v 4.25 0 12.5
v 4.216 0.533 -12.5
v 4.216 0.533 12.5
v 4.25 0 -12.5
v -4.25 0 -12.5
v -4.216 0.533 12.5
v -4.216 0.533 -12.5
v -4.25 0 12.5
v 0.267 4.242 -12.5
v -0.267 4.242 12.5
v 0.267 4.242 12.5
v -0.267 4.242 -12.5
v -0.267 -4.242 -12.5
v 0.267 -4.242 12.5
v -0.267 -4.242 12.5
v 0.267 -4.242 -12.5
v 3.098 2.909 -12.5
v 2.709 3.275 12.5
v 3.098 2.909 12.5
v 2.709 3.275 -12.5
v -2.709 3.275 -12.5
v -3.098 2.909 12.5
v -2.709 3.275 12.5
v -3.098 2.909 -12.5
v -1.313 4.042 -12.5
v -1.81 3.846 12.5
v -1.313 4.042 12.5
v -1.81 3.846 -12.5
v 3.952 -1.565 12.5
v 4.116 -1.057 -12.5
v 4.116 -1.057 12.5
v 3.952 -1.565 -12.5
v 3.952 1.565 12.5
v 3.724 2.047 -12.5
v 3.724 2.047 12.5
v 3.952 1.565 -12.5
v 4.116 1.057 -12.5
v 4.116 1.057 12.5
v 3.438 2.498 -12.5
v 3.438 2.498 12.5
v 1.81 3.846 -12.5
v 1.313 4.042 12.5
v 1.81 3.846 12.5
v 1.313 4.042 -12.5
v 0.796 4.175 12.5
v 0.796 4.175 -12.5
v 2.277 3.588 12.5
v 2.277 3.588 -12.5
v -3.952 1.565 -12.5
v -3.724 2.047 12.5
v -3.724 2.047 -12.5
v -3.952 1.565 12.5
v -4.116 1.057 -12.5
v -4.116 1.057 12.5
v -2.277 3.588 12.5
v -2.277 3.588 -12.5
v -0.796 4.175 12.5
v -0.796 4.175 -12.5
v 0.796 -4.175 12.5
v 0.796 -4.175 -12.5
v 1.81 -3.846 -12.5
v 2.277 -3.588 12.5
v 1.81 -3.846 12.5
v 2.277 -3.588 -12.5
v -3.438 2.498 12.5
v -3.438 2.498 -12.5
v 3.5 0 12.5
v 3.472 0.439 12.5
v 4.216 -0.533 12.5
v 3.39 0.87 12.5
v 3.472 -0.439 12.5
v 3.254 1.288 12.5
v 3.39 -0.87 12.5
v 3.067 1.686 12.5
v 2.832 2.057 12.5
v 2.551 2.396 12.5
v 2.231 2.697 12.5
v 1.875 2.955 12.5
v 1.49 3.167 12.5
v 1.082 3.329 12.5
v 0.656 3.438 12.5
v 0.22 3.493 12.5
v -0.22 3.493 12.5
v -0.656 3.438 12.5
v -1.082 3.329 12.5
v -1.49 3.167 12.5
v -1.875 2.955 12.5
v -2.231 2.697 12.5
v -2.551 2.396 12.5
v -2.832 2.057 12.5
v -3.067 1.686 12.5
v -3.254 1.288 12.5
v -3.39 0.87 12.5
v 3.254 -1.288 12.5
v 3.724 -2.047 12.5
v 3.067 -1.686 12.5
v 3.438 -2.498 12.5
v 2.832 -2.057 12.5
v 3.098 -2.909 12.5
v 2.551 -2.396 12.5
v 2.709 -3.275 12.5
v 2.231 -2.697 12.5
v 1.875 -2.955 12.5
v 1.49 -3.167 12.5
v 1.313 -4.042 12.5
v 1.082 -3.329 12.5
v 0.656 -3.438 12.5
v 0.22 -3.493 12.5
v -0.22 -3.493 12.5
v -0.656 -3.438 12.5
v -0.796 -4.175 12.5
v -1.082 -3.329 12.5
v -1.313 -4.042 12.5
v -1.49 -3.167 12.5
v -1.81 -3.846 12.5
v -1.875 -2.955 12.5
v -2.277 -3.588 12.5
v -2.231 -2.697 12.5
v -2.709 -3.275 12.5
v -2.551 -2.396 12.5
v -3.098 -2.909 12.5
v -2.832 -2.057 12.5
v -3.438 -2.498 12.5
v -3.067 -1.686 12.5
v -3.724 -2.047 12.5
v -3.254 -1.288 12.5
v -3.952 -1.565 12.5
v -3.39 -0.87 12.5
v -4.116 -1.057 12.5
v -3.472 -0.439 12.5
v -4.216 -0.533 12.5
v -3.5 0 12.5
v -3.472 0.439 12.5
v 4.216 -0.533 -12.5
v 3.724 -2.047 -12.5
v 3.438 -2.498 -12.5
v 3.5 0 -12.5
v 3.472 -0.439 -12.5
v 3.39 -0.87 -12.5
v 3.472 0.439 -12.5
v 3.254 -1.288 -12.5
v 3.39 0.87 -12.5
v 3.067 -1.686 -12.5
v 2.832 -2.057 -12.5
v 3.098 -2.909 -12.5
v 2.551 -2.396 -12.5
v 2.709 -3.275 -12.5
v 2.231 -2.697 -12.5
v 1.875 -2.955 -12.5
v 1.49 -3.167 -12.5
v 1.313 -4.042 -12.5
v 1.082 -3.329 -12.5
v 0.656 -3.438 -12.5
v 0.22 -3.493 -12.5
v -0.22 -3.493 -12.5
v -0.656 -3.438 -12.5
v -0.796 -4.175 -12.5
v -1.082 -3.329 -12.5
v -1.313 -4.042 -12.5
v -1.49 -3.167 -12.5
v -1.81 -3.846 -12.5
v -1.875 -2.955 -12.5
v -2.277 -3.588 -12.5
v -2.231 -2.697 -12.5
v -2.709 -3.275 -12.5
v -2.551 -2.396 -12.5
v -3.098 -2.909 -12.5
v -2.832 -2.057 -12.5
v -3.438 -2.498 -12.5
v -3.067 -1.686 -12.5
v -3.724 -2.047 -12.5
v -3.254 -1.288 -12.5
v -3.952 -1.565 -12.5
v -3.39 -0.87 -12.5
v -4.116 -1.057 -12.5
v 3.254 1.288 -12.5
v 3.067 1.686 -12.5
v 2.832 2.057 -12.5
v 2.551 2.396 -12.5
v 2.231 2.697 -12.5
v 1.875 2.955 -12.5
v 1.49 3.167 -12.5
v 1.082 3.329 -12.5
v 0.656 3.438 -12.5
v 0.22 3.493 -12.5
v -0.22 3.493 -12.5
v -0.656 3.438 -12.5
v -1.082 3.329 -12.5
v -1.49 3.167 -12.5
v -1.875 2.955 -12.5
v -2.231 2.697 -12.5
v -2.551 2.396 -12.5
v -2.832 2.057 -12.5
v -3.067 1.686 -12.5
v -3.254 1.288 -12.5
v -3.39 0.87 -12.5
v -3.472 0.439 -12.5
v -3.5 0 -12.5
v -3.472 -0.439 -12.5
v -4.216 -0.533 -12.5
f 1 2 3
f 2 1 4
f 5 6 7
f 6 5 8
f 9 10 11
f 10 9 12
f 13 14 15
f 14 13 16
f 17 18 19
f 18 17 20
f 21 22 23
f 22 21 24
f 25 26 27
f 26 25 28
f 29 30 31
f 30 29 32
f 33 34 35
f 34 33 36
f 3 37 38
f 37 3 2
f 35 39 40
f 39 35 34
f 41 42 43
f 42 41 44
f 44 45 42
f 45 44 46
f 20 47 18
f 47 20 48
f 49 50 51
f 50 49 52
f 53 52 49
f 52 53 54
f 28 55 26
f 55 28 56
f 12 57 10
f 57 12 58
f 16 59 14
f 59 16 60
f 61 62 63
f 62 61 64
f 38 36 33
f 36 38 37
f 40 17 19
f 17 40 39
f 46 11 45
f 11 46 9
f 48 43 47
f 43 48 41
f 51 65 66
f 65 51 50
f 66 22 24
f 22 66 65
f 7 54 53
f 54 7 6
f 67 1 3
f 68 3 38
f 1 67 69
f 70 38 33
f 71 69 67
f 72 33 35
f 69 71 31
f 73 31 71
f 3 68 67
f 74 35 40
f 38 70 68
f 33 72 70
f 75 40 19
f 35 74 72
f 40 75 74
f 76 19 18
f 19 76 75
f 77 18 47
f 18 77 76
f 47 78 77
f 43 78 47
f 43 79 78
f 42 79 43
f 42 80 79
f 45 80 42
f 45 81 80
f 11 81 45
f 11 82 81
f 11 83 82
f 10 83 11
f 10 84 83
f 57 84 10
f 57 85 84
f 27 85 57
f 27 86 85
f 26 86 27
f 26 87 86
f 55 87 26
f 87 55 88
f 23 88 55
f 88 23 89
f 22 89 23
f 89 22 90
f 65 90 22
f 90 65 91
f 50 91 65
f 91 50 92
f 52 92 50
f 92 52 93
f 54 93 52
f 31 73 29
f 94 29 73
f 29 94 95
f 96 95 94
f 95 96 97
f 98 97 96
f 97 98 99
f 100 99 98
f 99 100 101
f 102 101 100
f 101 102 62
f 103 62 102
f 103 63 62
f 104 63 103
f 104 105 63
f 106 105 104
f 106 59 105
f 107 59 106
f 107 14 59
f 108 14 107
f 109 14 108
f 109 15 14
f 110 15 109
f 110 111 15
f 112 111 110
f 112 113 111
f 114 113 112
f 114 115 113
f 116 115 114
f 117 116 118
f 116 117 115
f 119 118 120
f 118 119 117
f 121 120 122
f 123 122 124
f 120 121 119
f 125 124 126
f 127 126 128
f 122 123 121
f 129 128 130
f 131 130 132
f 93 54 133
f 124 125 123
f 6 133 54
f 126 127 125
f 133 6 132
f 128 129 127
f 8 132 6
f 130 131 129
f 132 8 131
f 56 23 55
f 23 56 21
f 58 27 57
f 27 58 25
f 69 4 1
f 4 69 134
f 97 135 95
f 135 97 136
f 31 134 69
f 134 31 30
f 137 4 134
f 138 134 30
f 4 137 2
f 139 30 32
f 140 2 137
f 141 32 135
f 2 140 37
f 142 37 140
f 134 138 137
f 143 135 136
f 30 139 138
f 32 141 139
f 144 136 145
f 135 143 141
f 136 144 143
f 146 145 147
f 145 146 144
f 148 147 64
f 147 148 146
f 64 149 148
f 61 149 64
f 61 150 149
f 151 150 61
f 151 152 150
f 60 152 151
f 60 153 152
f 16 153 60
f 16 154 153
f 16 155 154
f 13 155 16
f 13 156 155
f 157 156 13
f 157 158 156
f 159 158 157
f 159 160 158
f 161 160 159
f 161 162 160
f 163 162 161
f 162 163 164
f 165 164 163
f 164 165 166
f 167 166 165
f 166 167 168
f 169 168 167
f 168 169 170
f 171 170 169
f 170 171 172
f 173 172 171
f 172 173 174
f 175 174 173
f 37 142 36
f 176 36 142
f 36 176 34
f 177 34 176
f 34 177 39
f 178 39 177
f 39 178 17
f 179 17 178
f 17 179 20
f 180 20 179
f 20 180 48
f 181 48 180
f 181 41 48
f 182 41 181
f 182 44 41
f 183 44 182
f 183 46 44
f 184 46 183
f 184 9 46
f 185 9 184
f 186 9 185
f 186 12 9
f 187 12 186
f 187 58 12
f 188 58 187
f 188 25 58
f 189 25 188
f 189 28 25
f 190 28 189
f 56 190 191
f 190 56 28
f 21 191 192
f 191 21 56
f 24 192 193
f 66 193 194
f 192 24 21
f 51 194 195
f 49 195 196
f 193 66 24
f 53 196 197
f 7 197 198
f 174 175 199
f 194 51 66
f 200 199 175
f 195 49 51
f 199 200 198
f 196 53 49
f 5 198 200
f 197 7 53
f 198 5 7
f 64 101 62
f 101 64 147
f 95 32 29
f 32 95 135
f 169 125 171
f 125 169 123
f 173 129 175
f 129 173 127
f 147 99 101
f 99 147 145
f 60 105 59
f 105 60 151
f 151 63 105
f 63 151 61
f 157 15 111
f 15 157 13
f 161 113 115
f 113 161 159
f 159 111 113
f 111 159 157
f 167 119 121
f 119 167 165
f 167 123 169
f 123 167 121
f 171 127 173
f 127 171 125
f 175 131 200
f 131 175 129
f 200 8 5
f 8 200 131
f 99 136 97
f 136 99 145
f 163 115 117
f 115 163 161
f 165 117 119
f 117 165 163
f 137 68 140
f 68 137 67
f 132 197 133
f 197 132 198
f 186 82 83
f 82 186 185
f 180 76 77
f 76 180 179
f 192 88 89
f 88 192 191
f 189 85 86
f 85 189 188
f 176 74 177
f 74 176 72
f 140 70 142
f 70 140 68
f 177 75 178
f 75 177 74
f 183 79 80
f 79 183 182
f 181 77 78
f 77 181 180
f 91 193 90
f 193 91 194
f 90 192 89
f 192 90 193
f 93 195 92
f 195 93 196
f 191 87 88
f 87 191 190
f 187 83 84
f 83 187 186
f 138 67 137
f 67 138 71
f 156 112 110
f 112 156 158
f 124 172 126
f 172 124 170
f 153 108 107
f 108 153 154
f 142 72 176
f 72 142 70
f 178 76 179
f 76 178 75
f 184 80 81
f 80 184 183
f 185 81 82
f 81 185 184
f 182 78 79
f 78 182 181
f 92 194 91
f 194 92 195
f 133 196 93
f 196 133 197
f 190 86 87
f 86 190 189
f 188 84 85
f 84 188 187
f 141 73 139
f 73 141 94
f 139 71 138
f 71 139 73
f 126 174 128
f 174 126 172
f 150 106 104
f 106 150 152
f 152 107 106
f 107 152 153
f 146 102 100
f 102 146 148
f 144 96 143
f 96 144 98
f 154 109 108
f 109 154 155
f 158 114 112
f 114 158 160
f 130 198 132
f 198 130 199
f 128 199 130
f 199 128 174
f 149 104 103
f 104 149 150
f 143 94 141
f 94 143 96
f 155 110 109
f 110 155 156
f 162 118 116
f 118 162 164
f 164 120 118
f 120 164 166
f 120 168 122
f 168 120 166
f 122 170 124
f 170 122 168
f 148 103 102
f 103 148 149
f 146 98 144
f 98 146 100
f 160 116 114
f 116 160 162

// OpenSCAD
$fn = 50;


difference() {
	union() {
		translate(v = [0, 0, -12.5000000000]) {
			cylinder(h = 25, r = 4.2500000000);
		}
	}
	union() {
		translate(v = [0, 0, -100.0000000000]) {
			cylinder(h = 200, r = 3.5000000000);
		}
	}
}
